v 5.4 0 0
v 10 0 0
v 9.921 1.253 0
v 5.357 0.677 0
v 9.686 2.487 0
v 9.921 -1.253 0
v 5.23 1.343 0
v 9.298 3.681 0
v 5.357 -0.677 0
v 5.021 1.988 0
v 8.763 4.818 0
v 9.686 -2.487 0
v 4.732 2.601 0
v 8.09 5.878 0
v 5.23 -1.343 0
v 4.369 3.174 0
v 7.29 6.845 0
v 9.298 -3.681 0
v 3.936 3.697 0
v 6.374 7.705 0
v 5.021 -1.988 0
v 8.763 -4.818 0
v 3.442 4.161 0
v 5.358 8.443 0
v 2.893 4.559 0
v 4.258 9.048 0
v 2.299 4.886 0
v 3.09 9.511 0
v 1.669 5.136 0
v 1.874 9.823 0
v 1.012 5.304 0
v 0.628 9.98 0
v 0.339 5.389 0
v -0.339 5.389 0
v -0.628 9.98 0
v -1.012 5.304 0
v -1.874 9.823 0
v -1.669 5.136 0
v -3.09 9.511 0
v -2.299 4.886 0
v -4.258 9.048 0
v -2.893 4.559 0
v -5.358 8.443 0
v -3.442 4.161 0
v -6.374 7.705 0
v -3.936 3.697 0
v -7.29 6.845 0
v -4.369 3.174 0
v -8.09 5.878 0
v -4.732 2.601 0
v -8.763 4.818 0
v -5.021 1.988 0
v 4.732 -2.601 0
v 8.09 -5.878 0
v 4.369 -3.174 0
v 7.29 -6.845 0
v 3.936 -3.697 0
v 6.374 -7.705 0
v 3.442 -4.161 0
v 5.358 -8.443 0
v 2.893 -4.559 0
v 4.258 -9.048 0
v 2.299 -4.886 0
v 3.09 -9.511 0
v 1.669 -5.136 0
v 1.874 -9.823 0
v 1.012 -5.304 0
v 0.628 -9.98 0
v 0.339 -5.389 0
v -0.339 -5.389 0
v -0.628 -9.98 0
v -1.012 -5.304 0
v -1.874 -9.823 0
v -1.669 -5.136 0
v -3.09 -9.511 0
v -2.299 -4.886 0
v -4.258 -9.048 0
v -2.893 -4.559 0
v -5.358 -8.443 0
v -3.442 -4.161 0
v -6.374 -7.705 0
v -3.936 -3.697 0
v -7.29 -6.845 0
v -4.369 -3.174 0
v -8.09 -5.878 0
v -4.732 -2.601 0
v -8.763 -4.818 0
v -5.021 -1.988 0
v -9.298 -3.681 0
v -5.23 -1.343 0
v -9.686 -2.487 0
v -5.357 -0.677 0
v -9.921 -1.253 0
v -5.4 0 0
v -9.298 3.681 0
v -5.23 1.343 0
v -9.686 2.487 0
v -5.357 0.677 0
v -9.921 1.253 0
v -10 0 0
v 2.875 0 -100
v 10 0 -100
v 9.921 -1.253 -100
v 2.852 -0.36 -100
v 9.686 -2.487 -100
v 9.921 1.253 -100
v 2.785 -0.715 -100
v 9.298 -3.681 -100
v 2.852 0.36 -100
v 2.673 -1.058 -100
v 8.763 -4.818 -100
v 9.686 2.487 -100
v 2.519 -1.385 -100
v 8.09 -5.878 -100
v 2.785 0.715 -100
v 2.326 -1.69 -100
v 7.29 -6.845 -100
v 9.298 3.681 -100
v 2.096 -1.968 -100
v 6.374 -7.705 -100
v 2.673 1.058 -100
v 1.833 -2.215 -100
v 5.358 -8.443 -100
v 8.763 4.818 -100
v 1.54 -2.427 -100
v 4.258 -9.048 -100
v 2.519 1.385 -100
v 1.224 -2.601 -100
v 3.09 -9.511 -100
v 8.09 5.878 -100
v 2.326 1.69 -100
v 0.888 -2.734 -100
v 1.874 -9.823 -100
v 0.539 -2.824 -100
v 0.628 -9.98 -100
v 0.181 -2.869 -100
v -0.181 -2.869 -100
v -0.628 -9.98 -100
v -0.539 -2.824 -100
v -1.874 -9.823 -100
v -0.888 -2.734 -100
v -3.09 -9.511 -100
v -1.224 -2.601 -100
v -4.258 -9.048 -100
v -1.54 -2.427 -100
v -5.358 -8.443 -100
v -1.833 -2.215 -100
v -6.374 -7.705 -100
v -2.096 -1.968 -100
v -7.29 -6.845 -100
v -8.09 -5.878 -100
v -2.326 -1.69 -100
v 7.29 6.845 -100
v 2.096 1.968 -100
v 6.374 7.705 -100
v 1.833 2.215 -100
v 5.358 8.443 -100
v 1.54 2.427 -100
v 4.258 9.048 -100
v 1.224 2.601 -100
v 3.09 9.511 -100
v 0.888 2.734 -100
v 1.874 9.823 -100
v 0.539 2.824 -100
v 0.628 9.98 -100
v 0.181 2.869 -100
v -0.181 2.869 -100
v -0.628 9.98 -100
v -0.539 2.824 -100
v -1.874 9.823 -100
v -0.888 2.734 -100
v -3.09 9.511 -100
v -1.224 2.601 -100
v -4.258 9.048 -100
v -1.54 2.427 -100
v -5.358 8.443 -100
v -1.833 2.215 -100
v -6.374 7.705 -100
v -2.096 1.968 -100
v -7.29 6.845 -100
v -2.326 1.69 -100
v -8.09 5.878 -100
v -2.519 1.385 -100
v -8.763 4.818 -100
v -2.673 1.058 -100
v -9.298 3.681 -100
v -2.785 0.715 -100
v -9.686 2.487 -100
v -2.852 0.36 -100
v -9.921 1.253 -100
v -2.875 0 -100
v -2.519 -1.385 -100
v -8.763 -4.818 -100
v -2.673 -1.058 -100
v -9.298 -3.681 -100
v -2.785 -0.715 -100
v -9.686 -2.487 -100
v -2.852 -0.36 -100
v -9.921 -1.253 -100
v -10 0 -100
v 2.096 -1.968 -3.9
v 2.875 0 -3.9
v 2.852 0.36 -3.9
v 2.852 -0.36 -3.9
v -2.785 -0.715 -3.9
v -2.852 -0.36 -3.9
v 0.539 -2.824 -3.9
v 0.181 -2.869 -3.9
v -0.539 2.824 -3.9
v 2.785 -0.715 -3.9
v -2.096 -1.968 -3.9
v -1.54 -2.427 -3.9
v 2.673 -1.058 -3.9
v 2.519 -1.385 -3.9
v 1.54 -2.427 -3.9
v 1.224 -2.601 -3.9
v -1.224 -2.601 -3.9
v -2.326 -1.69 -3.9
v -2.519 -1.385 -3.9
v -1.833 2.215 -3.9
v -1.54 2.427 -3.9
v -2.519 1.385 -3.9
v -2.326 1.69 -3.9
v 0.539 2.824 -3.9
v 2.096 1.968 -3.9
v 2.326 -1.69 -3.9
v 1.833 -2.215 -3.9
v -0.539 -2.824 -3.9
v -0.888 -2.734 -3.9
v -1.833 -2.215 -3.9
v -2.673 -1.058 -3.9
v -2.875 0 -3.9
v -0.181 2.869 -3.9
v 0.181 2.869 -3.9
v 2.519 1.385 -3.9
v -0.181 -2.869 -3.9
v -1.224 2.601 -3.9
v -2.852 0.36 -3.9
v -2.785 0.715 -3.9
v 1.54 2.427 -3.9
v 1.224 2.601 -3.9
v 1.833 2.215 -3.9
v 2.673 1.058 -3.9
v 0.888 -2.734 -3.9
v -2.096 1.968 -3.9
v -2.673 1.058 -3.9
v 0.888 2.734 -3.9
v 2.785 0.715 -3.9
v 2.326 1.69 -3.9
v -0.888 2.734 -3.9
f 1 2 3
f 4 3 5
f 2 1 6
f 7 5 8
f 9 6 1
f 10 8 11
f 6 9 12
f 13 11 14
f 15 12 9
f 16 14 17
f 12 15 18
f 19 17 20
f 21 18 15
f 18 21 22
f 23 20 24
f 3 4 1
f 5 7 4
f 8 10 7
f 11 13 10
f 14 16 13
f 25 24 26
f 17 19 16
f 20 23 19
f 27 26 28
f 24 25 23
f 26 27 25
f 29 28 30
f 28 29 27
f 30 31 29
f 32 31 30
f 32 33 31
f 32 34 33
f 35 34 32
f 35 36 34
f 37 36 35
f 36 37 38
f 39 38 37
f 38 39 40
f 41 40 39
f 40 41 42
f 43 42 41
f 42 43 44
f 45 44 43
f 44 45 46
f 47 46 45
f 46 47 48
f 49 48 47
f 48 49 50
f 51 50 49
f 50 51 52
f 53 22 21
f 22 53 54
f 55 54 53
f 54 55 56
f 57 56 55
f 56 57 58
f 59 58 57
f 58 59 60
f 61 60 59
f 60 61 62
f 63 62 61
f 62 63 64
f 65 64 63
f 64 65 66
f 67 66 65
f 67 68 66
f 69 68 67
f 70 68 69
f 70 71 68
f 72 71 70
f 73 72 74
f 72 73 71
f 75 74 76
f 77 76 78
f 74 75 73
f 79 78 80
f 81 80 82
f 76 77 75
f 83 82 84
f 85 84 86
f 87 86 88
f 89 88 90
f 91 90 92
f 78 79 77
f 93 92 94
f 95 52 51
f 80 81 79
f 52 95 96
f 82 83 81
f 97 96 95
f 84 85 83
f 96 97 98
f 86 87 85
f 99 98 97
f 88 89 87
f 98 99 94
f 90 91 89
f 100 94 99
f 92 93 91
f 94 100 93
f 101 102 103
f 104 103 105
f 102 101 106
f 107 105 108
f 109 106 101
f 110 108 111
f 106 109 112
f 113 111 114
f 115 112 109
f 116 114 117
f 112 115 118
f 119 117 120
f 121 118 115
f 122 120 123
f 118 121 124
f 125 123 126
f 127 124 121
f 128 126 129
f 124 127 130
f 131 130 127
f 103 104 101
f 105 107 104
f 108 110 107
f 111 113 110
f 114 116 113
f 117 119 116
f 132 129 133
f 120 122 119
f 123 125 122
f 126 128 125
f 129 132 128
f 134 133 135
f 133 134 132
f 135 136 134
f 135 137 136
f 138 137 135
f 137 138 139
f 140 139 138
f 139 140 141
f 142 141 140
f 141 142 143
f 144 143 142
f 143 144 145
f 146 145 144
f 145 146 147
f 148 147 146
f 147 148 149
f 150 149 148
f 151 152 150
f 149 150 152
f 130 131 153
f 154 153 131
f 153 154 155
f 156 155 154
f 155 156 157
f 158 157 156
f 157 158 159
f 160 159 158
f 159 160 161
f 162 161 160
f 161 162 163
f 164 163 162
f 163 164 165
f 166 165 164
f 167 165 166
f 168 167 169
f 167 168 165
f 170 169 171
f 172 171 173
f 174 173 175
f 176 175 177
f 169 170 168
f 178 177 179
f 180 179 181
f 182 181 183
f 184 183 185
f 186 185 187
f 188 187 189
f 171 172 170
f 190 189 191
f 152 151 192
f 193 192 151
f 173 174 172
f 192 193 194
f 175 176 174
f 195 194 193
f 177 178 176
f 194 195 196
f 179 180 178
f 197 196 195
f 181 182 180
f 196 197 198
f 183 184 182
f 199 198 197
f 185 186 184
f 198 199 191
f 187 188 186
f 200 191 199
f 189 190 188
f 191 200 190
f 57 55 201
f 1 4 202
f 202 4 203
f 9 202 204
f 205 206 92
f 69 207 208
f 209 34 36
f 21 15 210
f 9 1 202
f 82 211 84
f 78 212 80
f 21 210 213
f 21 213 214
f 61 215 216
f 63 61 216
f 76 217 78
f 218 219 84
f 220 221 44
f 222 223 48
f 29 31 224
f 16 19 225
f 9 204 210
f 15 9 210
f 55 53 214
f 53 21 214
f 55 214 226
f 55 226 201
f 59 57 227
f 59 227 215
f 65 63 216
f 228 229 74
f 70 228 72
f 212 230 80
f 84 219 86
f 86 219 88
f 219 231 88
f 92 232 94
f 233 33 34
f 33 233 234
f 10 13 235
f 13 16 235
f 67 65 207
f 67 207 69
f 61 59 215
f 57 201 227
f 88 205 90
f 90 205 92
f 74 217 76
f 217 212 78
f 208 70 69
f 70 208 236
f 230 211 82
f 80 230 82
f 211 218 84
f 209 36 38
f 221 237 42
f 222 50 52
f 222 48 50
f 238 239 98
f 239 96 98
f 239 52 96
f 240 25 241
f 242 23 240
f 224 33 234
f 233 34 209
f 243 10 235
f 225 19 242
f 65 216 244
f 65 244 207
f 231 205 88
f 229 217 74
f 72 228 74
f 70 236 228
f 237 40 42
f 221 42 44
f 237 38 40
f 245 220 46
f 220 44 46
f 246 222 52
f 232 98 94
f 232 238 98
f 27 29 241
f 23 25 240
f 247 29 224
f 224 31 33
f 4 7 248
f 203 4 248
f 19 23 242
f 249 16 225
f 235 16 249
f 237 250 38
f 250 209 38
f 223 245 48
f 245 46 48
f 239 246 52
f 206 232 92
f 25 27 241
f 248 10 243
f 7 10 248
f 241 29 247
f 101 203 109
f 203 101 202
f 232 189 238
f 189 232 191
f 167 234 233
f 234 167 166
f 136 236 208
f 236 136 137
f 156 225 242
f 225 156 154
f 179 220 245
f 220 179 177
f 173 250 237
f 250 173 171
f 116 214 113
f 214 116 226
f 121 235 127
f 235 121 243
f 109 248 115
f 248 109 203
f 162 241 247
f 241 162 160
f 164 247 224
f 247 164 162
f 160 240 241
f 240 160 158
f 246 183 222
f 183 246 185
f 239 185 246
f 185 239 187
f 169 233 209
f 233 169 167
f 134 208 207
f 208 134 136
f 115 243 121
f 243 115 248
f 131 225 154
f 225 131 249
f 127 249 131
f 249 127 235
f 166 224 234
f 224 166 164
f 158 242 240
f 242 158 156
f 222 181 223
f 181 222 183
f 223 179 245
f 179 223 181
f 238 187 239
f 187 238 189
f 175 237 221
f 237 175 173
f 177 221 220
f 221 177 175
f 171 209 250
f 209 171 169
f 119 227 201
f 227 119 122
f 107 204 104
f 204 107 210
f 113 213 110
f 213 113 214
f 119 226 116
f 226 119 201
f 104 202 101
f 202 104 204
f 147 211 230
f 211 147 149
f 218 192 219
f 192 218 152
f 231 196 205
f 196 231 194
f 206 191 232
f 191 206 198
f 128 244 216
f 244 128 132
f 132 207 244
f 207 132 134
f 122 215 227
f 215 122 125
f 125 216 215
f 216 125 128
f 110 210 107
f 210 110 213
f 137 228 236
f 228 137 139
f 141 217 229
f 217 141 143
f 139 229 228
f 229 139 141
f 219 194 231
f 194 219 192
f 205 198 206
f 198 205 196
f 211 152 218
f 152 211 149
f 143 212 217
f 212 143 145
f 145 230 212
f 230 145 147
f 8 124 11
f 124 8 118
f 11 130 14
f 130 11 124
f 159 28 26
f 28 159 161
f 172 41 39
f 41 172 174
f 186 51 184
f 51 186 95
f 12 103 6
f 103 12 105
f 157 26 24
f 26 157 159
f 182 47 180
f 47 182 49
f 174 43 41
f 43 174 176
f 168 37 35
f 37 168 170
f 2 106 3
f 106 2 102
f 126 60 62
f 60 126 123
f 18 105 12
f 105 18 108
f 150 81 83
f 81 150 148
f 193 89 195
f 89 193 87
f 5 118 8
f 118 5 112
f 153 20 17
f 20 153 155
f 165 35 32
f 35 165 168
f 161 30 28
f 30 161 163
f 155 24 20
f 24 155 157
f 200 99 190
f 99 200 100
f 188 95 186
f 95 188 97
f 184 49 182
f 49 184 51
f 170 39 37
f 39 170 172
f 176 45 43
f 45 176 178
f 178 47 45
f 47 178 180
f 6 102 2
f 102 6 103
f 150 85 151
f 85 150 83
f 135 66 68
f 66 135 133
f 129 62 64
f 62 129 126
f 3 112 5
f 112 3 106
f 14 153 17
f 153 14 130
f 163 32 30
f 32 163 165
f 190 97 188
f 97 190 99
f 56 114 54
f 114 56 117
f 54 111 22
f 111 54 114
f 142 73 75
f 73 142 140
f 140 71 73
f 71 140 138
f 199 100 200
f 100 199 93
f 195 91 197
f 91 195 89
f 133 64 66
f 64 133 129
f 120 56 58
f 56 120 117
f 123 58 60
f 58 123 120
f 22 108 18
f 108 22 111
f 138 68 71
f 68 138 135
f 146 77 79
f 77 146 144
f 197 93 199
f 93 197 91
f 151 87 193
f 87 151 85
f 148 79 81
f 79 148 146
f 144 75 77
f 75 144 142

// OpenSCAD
$fn = 50;


difference() {
	union() {
		translate(v = [0, 0, -100.0000000000]) {
			cylinder(h = 100, r = 10.0000000000);
		}
		cylinder(h = 0, r = 20.0000000000);
	}
	union() {
		translate(v = [0, 0, 0]) {
			rotate(a = [0, 0, 0]) {
				difference() {
					union() {
						#translate(v = [0, 0, -100.0000000000]) {
							cylinder(h = 100, r = 2.6000000000);
						}
						#translate(v = [0, 0, -3.9000000000]) {
							cylinder(h = 3.9000000000, r = 10.0000000000, r1 = 2.8750000000, r2 = 5.4000000000);
						}
						#translate(v = [0, 0, -100.0000000000]) {
							cylinder(h = 100, r = 2.8750000000);
						}
						#translate(v = [0, 0, -100.0000000000]) {
							cylinder(h = 100, r = 2.6000000000);
						}
					}
					union();
				}
			}
		}
	}
}
